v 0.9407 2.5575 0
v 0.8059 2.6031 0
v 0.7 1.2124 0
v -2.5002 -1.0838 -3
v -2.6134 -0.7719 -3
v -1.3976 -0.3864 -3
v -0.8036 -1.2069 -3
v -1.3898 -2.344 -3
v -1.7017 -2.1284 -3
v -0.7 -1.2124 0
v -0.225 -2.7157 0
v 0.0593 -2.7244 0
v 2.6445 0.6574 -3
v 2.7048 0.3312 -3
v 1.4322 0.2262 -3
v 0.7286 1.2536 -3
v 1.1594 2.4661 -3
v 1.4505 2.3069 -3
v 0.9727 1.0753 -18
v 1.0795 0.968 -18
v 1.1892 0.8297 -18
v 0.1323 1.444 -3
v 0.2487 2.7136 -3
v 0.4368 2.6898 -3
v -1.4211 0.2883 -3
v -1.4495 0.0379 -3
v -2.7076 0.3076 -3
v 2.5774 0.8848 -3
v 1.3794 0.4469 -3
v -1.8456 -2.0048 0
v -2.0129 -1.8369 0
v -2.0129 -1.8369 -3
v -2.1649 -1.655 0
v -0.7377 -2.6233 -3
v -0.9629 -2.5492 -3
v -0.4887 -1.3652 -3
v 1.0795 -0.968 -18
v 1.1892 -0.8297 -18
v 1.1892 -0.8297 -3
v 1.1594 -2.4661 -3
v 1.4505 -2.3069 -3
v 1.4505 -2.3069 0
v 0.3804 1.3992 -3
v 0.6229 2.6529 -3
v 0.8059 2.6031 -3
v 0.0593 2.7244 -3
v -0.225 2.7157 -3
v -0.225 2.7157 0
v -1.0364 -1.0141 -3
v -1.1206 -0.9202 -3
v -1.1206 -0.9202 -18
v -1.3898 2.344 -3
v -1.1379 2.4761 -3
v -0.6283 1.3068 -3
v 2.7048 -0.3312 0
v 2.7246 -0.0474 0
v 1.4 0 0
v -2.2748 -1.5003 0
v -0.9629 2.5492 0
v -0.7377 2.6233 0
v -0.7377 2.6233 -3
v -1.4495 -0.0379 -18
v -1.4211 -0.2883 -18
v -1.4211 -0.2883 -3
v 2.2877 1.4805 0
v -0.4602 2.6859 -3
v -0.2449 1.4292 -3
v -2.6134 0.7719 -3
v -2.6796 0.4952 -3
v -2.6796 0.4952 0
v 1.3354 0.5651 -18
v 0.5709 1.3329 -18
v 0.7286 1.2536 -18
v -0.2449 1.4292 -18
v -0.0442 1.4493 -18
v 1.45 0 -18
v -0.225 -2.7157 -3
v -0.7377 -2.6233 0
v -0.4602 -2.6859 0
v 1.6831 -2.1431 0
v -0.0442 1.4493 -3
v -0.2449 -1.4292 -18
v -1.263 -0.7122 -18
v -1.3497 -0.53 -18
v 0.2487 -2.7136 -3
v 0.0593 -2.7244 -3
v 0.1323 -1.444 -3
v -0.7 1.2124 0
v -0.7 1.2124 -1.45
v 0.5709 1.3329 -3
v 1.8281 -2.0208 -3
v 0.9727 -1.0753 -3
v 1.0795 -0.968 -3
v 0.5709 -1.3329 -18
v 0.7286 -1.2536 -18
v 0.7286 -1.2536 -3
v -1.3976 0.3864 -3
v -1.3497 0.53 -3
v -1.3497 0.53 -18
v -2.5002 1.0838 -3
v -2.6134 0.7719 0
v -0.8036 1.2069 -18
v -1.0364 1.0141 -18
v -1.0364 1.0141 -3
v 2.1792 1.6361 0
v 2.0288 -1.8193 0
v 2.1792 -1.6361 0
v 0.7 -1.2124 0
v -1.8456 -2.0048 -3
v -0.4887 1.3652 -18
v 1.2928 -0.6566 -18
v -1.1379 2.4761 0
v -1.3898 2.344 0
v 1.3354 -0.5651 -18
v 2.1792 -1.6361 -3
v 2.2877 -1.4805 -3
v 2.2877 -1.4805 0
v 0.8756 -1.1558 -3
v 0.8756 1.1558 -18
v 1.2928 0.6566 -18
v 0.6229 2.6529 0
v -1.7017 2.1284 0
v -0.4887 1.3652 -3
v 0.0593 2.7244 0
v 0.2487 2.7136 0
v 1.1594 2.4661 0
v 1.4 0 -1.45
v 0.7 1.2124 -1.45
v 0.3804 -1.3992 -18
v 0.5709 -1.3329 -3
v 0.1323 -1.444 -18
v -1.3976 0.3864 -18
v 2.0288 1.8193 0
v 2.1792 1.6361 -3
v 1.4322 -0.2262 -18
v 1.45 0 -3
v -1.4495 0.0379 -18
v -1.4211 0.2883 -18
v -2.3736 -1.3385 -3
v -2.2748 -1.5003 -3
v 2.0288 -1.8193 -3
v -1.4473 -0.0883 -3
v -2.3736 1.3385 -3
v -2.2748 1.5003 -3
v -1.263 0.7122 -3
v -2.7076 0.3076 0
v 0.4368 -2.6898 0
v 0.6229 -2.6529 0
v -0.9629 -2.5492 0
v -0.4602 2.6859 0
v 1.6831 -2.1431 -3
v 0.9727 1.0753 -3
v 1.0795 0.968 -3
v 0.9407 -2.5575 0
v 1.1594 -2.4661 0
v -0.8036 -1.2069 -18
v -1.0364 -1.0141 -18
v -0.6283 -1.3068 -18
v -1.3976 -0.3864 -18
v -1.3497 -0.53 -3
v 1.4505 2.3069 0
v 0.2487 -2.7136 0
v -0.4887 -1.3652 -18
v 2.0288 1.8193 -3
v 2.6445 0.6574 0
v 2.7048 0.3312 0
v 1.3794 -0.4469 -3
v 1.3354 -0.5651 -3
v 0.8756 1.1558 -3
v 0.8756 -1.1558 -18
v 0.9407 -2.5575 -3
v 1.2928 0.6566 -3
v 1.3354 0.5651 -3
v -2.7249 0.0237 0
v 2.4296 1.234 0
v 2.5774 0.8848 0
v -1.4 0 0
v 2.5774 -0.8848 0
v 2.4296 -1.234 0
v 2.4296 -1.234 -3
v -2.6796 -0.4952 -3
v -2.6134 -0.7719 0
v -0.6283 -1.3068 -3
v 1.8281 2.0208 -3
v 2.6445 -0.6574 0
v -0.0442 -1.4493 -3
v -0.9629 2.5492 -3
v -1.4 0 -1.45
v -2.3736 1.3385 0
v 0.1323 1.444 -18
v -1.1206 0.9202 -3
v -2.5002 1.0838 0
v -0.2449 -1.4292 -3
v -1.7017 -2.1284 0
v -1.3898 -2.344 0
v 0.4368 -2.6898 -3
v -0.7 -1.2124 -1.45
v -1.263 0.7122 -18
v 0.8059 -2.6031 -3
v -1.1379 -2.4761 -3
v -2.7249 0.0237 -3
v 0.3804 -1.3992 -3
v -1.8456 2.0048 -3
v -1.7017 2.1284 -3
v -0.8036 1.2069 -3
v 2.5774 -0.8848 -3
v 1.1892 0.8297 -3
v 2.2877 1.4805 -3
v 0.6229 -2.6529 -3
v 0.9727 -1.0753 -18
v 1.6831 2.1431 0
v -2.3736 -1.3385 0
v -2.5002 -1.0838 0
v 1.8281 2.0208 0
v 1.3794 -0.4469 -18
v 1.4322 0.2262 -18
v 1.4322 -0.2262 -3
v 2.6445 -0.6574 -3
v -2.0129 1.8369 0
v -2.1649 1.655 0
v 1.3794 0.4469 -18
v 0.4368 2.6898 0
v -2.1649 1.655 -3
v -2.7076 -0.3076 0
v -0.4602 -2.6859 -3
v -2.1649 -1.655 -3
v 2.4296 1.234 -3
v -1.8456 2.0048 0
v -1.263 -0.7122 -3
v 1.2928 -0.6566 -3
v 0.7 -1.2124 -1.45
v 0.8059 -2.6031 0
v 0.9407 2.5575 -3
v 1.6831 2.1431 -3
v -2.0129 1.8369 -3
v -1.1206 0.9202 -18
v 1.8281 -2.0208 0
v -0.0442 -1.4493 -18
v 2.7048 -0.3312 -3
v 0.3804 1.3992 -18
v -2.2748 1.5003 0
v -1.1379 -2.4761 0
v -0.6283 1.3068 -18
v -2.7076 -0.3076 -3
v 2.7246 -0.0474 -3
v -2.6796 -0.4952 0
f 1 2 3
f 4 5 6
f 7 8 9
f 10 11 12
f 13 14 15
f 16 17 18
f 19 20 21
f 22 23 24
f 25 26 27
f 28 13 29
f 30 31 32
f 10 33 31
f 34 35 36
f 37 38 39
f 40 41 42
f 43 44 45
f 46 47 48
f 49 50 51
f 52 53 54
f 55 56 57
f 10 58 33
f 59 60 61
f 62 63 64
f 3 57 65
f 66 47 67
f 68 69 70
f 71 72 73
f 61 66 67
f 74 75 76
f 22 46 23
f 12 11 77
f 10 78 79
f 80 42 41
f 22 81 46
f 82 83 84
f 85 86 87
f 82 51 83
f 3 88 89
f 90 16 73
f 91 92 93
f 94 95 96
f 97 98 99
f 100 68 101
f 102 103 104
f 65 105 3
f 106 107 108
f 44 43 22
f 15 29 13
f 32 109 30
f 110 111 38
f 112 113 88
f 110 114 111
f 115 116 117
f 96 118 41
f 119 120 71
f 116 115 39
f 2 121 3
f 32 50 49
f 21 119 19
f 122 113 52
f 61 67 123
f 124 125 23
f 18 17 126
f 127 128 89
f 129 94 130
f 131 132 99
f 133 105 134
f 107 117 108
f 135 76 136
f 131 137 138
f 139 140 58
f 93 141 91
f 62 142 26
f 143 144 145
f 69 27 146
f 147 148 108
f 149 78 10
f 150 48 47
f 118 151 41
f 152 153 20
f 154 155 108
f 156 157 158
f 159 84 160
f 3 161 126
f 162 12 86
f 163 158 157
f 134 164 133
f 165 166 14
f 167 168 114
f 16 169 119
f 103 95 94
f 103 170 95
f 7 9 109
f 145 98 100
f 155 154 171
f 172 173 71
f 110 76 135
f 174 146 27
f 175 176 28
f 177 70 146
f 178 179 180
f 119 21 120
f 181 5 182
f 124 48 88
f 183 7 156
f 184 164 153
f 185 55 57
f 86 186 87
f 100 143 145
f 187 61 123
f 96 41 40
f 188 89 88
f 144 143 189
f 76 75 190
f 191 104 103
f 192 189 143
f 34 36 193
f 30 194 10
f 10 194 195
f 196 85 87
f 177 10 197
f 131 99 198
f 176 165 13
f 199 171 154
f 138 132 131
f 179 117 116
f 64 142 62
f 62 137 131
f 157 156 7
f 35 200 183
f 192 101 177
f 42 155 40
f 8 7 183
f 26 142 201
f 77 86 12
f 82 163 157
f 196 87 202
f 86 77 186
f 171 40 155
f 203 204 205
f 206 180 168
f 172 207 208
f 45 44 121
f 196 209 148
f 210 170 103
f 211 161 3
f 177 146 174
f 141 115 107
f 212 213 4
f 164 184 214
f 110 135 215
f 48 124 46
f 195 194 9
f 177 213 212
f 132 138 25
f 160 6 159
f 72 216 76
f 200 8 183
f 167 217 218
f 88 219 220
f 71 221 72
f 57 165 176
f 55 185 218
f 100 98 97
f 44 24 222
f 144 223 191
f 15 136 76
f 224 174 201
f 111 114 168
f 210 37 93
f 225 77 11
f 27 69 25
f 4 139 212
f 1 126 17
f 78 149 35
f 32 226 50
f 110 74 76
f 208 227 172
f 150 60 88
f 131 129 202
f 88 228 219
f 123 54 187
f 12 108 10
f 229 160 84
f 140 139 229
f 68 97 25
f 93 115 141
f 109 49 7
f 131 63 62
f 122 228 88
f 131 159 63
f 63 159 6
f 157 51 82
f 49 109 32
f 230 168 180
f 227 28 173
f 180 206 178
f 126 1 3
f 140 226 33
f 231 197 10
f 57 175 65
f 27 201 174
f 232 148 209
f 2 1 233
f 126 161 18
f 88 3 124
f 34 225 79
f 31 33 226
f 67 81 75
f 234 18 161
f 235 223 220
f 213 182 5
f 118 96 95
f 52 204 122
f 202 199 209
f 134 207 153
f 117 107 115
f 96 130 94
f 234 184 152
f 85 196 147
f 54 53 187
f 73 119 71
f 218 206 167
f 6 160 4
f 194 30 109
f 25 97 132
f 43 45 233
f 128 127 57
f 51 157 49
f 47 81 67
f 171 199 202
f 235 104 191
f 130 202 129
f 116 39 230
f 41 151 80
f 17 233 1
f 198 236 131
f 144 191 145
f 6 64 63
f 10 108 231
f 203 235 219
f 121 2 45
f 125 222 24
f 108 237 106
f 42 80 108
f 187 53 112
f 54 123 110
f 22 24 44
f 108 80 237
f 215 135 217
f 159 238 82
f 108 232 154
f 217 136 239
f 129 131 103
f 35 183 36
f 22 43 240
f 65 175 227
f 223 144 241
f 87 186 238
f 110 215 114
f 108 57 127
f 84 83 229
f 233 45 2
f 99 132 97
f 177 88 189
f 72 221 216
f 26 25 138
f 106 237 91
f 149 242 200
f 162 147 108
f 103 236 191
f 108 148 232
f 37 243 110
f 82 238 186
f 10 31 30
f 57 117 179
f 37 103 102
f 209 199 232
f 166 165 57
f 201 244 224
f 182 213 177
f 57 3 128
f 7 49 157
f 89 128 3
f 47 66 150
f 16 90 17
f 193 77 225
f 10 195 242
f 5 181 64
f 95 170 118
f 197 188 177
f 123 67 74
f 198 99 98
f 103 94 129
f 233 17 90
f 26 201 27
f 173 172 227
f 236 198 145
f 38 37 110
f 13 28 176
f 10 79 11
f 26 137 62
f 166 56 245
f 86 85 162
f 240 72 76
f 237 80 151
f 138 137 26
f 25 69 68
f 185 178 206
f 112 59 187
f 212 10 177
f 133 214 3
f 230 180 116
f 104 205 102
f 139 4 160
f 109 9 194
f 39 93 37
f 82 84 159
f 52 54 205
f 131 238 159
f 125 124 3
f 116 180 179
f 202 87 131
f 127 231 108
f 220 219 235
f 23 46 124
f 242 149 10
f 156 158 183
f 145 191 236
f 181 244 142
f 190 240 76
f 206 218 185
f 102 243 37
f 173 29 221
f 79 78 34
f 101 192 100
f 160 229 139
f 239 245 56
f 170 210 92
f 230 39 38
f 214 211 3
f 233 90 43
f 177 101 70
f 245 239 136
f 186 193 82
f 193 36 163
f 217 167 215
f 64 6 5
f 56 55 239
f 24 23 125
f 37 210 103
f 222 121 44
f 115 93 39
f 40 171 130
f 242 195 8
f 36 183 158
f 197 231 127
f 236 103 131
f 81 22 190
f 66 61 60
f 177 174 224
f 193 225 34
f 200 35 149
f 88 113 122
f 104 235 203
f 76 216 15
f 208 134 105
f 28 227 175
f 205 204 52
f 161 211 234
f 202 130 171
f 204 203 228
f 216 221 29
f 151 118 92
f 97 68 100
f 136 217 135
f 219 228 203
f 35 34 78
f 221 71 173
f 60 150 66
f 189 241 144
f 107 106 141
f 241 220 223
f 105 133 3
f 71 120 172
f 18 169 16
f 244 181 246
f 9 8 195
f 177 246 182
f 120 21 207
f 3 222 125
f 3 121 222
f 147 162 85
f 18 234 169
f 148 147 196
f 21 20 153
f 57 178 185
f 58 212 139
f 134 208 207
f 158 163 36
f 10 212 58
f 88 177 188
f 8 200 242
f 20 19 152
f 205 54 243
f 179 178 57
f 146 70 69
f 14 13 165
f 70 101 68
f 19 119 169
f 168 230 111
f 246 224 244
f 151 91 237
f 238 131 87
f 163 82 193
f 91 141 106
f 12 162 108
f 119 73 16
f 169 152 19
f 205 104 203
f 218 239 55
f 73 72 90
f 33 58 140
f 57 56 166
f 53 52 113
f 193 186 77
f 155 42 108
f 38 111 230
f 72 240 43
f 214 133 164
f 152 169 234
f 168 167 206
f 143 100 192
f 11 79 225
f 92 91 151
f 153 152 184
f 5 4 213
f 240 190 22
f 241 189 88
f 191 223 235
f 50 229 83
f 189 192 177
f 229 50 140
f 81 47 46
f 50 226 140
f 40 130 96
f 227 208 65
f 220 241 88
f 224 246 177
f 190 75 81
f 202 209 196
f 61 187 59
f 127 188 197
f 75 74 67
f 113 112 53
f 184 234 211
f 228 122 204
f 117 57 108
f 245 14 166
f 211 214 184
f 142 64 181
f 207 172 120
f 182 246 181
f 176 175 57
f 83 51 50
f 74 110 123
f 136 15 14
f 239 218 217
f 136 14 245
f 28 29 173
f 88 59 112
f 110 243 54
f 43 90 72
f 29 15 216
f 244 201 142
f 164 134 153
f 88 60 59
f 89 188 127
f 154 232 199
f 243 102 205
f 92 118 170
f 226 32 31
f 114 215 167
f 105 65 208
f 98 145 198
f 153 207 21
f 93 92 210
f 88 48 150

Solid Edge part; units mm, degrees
sketch "Sketch1" plane through (0, 0, 0) normal (0, 0, 1) x (1, 0, 0)
  circle A0 centre (0, 0) radius 2.725
extrude "Protrusion1" add sketch "Sketch1" against normal blind 3
sketch "Sketch2" plane through (0, 0, 0) normal (0, 0, 1) x (1, 0, 0)
  line L0 (-0.7, -1.2124) -> (-1.05, -0.6062)
  line L1 (-1.4, 0) -> (-1.05, -0.6062)
  line L2 (-1.4, 0) -> (-1.05, 0.6062)
  line L3 (-0.7, 1.2124) -> (-1.05, 0.6062)
  line L4 (-0.7, 1.2124) -> (0, 1.2124)
  line L5 (0.7, 1.2124) -> (0, 1.2124)
  line L6 (0.7, 1.2124) -> (1.05, 0.6062)
  line L7 (1.4, 0) -> (1.05, 0.6062)
  line L8 (1.4, 0) -> (1.05, -0.6062)
  line L9 (0.7, -1.2124) -> (1.05, -0.6062)
  line L10 (0.7, -1.2124) -> (0, -1.2124)
  line L11 (-0.7, -1.2124) -> (0, -1.2124)
extrude "ExtrudedCutout_1" cut sketch "Sketch2" against normal blind 1.45
sketch "Sketch3" plane through (0, 0, -3) normal (0, 0, -1) x (1, 0, 0)
  circle A0 centre (0, 0) radius 1.45
extrude "ExtrudedProtrusion_2" add sketch "Sketch3" along normal blind 15
